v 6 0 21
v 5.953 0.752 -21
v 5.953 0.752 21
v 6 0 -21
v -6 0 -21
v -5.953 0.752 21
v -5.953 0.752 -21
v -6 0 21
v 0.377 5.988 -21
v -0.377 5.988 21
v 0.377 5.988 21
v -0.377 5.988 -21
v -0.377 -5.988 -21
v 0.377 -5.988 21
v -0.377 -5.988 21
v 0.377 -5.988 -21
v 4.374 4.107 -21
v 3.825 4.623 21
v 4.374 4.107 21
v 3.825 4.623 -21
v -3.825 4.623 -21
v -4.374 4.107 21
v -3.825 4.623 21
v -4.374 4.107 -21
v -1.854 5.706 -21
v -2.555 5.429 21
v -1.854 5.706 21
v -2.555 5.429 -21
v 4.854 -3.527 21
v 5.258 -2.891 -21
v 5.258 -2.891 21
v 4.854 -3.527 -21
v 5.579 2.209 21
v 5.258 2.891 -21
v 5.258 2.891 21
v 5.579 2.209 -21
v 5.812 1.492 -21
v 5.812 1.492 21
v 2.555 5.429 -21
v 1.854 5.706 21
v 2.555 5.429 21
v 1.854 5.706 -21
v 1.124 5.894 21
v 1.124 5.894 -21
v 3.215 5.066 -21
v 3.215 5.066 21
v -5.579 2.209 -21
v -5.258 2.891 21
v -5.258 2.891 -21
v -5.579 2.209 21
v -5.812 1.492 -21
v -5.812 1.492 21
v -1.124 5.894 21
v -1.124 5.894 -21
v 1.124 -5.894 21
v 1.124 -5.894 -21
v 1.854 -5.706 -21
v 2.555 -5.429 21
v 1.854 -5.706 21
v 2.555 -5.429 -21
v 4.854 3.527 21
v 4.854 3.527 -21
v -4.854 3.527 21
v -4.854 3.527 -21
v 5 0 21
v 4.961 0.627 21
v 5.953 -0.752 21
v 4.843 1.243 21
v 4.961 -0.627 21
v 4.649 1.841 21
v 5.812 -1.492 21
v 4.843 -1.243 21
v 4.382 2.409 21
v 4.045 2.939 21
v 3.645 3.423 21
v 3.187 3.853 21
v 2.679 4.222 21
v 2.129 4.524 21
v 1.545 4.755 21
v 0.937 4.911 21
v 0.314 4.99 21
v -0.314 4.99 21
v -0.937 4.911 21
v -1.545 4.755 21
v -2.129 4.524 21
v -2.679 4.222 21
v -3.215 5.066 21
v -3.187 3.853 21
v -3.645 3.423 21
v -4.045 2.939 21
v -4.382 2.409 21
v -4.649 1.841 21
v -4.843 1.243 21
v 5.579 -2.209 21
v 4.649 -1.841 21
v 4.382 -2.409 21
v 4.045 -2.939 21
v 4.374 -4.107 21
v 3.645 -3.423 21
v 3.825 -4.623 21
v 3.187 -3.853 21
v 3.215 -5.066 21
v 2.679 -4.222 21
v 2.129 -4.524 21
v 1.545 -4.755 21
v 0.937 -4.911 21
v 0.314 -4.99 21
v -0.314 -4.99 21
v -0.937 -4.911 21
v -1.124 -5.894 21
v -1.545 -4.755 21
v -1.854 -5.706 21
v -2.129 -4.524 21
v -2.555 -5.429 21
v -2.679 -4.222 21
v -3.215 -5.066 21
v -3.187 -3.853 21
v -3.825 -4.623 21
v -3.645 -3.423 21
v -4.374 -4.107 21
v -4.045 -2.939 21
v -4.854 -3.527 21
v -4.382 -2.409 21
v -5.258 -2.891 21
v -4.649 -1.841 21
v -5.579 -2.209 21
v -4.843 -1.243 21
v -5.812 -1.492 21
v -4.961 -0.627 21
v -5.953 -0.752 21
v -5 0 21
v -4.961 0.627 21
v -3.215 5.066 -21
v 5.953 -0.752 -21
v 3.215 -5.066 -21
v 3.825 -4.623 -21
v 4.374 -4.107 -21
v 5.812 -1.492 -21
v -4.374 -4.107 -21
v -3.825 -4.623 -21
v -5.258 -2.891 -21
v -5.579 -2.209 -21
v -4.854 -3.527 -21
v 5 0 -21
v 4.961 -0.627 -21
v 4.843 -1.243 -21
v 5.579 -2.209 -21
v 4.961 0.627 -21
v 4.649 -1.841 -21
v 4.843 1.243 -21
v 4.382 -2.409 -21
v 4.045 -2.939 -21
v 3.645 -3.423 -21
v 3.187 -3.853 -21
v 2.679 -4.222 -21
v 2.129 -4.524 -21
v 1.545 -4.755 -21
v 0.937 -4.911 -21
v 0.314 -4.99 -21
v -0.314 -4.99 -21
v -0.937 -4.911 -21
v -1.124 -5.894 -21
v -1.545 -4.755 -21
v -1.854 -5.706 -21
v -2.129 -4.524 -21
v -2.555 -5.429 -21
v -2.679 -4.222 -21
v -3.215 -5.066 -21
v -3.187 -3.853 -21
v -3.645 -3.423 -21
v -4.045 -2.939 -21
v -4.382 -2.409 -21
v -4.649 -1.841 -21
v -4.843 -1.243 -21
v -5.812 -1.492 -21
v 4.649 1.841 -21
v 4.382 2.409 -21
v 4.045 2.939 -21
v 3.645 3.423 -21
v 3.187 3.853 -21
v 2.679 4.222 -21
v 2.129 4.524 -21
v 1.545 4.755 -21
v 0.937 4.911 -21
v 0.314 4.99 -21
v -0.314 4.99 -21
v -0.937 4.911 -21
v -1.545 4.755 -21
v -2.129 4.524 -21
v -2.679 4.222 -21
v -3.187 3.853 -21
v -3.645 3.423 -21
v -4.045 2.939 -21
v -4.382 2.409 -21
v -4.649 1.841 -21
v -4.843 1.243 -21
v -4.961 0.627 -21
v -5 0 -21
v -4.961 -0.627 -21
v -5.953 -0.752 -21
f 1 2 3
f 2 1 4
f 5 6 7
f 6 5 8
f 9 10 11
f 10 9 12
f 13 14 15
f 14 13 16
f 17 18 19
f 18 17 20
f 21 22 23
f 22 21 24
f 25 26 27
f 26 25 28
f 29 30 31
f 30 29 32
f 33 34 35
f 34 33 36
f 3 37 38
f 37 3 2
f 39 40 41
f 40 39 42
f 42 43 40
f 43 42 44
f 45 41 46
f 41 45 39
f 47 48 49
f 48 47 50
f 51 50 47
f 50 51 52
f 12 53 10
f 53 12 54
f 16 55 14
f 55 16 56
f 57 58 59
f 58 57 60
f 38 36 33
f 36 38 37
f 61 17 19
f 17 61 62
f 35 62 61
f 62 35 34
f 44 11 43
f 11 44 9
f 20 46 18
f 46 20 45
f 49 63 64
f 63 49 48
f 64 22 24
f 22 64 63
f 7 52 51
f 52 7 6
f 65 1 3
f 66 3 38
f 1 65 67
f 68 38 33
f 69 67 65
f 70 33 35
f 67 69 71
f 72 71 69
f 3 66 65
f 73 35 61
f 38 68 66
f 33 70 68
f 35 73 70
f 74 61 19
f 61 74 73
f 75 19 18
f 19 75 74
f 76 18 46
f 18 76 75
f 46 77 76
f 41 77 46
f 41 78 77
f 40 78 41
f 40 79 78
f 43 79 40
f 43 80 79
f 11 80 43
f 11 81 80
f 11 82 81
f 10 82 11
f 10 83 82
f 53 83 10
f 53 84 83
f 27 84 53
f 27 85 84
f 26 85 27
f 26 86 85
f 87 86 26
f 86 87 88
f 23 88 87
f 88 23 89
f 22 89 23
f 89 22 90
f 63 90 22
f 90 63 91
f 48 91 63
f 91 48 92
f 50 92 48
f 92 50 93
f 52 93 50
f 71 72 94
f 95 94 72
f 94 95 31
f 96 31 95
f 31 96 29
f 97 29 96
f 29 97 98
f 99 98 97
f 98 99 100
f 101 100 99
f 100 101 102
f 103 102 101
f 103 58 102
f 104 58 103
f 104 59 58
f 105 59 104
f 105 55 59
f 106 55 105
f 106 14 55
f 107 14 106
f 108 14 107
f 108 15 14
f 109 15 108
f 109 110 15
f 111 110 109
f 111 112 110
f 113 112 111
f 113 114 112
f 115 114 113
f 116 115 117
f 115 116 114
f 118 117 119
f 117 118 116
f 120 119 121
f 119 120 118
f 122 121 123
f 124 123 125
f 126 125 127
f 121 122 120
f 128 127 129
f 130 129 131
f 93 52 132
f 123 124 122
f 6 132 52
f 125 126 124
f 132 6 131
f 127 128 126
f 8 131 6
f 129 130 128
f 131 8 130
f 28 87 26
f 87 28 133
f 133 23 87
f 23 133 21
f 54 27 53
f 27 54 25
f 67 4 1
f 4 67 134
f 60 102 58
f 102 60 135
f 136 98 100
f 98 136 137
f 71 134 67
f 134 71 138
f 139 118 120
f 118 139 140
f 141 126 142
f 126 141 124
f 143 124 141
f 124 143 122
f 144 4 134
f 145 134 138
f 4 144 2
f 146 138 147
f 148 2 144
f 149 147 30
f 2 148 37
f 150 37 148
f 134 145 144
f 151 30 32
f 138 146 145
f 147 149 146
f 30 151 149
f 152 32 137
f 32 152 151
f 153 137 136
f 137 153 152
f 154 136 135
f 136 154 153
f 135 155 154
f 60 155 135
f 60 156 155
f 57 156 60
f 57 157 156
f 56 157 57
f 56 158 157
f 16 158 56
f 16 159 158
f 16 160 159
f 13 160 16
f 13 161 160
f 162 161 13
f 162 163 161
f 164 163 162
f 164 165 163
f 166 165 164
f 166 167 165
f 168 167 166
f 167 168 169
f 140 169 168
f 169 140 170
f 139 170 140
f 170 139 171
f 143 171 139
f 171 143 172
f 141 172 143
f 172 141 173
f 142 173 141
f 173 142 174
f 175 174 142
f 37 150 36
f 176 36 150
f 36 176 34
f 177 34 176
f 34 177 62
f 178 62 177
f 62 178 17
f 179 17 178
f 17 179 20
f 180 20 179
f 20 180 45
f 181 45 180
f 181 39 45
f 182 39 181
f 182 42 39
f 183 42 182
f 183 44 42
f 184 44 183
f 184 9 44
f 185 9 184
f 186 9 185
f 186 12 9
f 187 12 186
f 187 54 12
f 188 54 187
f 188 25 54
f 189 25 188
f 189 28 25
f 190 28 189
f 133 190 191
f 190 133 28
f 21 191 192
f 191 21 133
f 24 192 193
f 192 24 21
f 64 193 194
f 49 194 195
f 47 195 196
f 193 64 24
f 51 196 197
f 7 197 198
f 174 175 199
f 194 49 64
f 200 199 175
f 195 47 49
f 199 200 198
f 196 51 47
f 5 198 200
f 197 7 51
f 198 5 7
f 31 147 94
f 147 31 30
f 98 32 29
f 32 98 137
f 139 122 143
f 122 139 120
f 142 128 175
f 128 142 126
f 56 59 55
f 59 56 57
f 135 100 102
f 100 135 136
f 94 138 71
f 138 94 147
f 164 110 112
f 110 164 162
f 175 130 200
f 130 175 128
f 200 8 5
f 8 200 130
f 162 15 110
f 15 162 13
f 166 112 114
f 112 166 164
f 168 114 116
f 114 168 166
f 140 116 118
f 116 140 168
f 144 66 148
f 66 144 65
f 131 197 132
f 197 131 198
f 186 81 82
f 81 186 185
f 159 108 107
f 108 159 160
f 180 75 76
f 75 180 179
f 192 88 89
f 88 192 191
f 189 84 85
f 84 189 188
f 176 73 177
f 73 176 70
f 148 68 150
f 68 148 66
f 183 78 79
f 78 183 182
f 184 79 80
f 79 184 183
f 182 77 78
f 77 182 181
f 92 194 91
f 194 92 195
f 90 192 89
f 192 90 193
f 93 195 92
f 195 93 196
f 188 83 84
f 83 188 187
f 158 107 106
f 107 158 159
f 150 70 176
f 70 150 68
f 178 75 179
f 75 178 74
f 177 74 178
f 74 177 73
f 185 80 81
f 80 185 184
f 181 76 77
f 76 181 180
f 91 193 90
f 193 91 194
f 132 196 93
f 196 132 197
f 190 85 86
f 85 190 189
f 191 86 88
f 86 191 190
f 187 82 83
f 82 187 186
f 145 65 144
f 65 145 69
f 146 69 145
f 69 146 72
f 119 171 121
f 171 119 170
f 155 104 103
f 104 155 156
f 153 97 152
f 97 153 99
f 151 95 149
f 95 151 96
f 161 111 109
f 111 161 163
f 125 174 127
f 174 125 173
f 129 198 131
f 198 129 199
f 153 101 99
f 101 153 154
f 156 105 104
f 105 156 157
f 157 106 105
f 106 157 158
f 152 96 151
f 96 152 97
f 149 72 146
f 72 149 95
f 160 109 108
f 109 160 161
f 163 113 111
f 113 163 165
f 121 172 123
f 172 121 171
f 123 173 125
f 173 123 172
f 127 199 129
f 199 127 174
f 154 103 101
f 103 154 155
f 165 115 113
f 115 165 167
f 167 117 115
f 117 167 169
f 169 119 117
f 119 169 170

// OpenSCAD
$fn = 50;


difference() {
	union() {
		translate(v = [0, 0, -21.0000000000]) {
			cylinder(h = 42, r = 6.0000000000);
		}
	}
	union() {
		translate(v = [0, 0, -100.0000000000]) {
			cylinder(h = 200, r = 5.0000000000);
		}
	}
}
